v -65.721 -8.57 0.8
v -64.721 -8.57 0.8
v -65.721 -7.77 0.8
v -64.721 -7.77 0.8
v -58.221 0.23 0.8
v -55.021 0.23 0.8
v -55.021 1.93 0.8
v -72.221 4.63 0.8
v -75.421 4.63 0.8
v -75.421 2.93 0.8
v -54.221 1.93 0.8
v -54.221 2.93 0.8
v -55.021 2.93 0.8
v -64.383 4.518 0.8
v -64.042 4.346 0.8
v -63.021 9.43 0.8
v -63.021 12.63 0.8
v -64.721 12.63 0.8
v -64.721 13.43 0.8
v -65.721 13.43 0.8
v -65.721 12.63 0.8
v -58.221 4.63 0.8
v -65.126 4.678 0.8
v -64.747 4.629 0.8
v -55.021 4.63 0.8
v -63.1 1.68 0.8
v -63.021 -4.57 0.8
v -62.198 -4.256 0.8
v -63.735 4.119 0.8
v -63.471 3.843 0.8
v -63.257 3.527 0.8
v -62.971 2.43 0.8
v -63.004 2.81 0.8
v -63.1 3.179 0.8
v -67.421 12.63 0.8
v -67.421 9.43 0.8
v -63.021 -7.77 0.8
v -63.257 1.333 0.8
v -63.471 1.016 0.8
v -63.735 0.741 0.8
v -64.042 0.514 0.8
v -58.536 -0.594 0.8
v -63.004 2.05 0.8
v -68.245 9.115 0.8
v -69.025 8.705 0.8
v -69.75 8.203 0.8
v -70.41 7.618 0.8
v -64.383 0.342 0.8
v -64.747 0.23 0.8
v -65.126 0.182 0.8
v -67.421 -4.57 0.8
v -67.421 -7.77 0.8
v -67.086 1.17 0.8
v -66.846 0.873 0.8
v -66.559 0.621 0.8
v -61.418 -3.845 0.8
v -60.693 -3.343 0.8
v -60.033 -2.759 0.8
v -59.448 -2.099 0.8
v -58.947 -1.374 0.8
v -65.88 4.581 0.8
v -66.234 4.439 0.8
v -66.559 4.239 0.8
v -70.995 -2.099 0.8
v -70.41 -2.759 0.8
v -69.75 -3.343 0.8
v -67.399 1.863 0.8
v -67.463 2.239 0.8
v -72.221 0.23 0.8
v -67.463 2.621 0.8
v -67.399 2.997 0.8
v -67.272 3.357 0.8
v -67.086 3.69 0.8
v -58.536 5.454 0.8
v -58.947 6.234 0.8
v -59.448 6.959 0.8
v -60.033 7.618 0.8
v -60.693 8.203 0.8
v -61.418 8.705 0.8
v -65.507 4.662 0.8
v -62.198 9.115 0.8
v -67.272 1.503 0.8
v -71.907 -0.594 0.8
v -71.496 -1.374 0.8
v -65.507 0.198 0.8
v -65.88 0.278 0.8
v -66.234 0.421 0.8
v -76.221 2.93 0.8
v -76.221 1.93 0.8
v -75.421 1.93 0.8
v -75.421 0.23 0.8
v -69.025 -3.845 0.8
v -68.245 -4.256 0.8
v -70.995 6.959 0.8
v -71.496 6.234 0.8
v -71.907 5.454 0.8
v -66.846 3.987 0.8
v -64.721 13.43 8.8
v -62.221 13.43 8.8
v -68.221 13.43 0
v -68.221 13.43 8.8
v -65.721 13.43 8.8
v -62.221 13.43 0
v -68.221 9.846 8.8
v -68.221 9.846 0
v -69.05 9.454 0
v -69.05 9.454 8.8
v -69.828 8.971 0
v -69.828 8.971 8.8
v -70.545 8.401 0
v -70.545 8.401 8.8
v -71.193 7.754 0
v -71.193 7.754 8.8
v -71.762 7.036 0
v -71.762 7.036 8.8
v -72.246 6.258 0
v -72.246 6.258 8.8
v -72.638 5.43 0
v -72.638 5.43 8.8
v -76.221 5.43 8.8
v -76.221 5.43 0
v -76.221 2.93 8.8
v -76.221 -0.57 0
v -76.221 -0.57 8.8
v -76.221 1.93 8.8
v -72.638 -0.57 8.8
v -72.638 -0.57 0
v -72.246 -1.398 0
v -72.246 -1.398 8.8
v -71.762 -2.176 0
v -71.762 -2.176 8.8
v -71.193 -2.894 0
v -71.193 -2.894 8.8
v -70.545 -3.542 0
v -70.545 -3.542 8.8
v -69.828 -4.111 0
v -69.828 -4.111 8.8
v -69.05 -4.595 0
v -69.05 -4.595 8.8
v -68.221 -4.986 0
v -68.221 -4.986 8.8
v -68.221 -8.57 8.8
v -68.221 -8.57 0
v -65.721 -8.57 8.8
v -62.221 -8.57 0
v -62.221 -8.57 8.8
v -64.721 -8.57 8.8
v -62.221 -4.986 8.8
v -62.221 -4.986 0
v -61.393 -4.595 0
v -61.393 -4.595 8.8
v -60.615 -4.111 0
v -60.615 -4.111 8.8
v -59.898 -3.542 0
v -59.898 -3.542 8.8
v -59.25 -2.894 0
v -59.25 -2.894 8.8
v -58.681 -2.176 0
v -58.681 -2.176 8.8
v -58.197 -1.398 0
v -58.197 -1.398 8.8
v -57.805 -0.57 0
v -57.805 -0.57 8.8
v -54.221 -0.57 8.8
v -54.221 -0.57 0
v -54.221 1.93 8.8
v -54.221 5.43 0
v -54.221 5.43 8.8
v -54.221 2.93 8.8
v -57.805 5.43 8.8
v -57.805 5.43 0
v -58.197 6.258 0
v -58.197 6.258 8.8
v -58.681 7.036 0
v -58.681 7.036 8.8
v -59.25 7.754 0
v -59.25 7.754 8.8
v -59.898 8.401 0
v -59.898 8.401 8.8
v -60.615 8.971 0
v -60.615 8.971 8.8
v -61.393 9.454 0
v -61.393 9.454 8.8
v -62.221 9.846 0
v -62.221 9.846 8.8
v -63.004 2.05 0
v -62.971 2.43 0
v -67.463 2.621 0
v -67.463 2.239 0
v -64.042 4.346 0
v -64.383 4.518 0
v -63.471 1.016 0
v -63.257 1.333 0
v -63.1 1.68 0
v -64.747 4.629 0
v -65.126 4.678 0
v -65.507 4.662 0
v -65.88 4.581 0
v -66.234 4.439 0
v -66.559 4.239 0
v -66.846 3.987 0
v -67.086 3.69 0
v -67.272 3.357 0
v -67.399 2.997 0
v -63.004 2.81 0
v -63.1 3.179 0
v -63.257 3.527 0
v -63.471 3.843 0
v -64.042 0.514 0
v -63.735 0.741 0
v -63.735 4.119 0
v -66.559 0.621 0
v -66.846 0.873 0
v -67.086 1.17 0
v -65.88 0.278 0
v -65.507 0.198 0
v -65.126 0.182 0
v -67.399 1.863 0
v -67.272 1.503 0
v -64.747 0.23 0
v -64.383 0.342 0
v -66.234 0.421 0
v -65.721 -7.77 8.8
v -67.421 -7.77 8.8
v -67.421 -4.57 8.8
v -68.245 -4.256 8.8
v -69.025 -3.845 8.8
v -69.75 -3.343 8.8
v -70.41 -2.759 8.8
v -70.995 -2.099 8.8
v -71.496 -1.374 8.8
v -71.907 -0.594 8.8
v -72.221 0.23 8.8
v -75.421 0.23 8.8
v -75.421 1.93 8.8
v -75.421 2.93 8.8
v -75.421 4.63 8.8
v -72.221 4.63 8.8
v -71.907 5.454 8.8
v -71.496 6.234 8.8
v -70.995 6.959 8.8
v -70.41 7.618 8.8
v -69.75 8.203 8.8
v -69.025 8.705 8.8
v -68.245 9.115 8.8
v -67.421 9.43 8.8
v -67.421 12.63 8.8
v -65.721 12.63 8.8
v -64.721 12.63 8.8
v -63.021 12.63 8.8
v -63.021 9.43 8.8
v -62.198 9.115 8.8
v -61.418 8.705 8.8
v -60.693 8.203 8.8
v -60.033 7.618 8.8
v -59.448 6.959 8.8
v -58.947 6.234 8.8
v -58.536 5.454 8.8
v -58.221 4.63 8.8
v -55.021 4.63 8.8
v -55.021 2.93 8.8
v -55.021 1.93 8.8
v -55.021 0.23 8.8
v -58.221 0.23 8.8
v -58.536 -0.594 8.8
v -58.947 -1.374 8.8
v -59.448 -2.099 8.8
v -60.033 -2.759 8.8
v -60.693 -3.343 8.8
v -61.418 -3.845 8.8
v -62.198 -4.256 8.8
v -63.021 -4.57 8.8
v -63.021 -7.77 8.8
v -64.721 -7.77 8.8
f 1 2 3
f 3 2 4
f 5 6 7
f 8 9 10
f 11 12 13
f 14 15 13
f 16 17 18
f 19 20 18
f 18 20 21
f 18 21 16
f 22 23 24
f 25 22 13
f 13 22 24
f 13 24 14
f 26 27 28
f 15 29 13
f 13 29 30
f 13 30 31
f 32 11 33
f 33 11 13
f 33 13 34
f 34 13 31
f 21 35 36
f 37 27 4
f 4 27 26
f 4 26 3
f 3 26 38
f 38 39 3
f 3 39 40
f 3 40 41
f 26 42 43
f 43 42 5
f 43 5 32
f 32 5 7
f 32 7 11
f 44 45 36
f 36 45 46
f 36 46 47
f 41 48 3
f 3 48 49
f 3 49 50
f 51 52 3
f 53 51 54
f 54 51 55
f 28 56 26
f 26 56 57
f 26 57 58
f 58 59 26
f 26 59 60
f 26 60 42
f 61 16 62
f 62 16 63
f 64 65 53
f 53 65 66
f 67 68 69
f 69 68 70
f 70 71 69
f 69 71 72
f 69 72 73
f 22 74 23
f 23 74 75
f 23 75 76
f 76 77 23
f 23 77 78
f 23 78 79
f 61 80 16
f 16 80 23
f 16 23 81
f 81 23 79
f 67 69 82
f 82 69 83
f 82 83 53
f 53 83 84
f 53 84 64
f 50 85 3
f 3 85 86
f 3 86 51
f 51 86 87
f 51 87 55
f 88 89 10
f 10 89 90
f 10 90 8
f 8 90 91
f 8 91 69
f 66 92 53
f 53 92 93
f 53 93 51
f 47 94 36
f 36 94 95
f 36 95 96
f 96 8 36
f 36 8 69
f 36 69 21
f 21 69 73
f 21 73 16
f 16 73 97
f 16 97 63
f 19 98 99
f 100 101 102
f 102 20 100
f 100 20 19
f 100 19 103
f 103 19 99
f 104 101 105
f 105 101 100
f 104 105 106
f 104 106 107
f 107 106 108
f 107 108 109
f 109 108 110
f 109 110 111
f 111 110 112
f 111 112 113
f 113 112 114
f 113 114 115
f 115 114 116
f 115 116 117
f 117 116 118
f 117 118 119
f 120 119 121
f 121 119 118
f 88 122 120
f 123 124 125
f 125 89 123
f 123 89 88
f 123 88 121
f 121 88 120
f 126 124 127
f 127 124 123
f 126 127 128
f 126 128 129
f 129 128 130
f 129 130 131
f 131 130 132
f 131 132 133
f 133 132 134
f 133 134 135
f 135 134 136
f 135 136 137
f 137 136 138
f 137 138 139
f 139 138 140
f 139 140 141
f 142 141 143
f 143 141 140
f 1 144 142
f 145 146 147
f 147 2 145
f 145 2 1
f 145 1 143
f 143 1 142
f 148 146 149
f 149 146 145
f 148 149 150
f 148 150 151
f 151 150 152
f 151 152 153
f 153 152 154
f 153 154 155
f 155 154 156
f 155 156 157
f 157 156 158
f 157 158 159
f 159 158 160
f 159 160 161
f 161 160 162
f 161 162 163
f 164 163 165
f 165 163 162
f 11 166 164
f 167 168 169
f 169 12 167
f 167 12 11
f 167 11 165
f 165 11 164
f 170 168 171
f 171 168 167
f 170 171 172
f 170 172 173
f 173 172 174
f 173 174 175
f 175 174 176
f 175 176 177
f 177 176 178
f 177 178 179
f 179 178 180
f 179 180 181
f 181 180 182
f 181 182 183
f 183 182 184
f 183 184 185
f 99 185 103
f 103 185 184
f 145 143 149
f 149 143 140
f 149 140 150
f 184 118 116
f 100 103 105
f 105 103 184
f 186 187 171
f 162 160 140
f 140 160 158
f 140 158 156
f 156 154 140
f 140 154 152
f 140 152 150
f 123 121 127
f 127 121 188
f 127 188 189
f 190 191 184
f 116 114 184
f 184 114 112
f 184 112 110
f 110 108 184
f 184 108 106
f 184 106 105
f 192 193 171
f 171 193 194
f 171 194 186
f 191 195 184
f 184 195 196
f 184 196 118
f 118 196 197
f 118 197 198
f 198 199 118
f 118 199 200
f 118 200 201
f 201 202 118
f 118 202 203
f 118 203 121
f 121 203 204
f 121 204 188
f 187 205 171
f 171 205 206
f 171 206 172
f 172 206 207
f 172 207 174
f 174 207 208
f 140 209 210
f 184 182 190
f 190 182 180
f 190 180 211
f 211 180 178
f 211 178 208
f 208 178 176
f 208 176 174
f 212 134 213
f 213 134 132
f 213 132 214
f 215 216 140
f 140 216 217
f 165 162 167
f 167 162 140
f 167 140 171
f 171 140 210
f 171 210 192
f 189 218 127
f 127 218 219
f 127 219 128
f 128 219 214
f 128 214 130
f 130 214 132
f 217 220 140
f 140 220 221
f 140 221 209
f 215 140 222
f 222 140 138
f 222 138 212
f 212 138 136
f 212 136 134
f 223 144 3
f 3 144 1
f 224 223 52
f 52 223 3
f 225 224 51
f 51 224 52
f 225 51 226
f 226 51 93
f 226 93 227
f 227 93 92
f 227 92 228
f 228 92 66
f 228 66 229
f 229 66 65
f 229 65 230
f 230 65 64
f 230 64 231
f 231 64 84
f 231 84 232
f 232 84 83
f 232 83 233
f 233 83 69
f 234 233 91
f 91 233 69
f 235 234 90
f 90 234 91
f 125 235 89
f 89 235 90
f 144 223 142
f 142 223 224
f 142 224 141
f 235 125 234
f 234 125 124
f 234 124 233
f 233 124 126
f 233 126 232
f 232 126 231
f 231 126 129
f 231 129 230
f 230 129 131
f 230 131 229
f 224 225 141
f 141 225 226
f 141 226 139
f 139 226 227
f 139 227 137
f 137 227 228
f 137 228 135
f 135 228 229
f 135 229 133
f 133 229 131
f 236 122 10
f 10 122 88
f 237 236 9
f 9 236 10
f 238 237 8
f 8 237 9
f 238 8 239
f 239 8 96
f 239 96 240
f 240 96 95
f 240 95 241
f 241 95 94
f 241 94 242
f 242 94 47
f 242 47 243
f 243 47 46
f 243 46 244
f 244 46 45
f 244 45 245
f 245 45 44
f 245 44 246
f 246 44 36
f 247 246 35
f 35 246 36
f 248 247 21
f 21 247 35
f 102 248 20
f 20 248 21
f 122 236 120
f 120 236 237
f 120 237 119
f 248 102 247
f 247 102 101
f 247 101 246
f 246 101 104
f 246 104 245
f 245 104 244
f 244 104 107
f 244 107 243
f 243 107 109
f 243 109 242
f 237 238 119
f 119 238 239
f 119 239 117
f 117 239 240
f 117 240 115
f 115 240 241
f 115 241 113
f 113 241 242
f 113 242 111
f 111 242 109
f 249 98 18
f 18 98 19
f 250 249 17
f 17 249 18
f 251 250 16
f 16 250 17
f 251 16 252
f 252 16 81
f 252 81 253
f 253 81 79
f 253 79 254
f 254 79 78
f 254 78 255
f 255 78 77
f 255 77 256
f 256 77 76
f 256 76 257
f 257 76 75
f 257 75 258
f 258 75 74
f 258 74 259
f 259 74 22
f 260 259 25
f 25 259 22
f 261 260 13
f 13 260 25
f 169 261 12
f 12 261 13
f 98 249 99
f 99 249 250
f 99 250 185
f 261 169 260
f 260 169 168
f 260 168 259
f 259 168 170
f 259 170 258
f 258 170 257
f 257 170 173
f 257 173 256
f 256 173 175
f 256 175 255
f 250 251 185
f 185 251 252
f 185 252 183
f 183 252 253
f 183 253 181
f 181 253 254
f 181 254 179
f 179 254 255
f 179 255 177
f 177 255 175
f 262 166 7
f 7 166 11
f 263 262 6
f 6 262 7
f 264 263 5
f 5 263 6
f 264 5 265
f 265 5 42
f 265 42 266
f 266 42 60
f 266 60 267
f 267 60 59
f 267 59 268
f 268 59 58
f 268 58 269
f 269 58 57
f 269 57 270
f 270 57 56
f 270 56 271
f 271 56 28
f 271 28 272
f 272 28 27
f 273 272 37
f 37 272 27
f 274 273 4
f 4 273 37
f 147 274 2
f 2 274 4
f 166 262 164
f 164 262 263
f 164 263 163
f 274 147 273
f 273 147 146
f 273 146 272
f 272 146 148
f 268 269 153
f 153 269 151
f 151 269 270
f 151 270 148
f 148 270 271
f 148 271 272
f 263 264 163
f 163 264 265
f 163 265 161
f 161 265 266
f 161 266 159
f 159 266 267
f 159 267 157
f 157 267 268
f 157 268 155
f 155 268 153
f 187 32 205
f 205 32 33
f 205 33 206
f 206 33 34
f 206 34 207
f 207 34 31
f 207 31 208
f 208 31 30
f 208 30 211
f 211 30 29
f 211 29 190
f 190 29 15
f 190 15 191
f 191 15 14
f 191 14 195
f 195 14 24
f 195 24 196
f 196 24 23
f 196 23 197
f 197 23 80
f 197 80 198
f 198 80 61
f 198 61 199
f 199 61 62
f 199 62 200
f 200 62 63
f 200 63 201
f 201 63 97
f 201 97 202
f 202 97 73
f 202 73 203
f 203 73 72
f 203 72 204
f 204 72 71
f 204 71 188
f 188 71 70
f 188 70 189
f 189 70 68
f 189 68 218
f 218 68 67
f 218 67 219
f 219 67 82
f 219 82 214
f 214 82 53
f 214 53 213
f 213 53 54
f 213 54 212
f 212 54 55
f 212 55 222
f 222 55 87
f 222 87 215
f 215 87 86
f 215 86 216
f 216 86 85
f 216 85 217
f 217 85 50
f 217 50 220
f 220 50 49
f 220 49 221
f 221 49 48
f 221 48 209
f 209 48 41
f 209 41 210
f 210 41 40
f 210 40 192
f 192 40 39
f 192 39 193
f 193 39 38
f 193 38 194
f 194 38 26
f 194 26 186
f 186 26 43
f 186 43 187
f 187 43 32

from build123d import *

# Parameters (mm, degrees)
SALIENTE_EXTRUIR1_DEPTH = 0.8
SALIENTE_EXTRUIR2_DEPTH = 8
CROQUIS3_R              = 2.25
CORTAR_EXTRUIR1_DEPTH   = 0.8


with BuildPart() as part:
    # Croquis1 → Saliente-Extruir1 (new body)
    with BuildSketch(Plane.XY):
        with BuildLine():
            Line((-68.221491284, 9.846072283), (-68.221491284, 13.429873796))
            Line((-68.221491284, 13.429873796), (-62.221491284, 13.429873796))
            Line((-62.221491284, 13.429873796), (-62.221491284, 9.846072283))
            ThreePointArc((-62.221491284, 9.846072283), (-59.564637034, 8.086728046), (-57.805292797, 5.429873796))
            Line((-57.805292797, 5.429873796), (-54.221491284, 5.429873796))
            Line((-54.221491284, 5.429873796), (-54.221491284, -0.570126204))
            Line((-54.221491284, -0.570126204), (-57.805292797, -0.570126204))
            ThreePointArc((-57.805292797, -0.570126204), (-59.564637034, -3.226980453), (-62.221491284, -4.986324691))
            Line((-62.221491284, -4.986324691), (-62.221491284, -8.570126204))
            Line((-62.221491284, -8.570126204), (-68.221491284, -8.570126204))
            Line((-68.221491284, -8.570126204), (-68.221491284, -4.986324691))
            ThreePointArc((-68.221491284, -4.986324691), (-70.878345533, -3.226980453), (-72.637689771, -0.570126204))
            Line((-72.637689771, -0.570126204), (-76.221491284, -0.570126204))
            Line((-76.221491284, -0.570126204), (-76.221491284, 5.429873796))
            Line((-76.221491284, 5.429873796), (-72.637689771, 5.429873796))
            ThreePointArc((-72.637689771, 5.429873796), (-70.878345533, 8.086728046), (-68.221491284, 9.846072283))
        make_face()
    extrude(amount=SALIENTE_EXTRUIR1_DEPTH)

    # Croquis2 → Saliente-Extruir2 (add)
    with BuildSketch(Plane.XY.offset(0.8)):
        with BuildLine():
            Line((-72.637689771, -0.570126204), (-76.221491284, -0.570126204))
            Line((-76.221491284, -0.570126204), (-76.221491284, 1.929873796))
            Line((-76.221491284, 1.929873796), (-75.421491284, 1.929873796))
            Line((-75.421491284, 1.929873796), (-75.421491284, 0.229873796))
            Line((-75.421491284, 0.229873796), (-72.221491284, 0.229873796))
            ThreePointArc((-72.221491284, 0.229873796), (-70.409939992, -2.758574912), (-67.421491284, -4.570126204))
            Line((-67.421491284, -4.570126204), (-67.421491284, -7.770126204))
            Line((-67.421491284, -7.770126204), (-65.721491284, -7.770126204))
            Line((-65.721491284, -7.770126204), (-65.721491284, -8.570126204))
            Line((-65.721491284, -8.570126204), (-68.221491284, -8.570126204))
            Line((-68.221491284, -8.570126204), (-68.221491284, -4.986324691))
            ThreePointArc((-68.221491284, -4.986324691), (-70.878345533, -3.226980453), (-72.637689771, -0.570126204))
        make_face()
        with BuildLine():
            Line((-76.221491284, 5.429873796), (-72.637689771, 5.429873796))
            ThreePointArc((-72.637689771, 5.429873796), (-70.878345533, 8.086728046), (-68.221491284, 9.846072283))
            Line((-68.221491284, 9.846072283), (-68.221491284, 13.429873796))
            Line((-68.221491284, 13.429873796), (-65.721491284, 13.429873796))
            Line((-65.721491284, 13.429873796), (-65.721491284, 12.629873796))
            Line((-65.721491284, 12.629873796), (-67.421491284, 12.629873796))
            Line((-67.421491284, 12.629873796), (-67.421491284, 9.429873796))
            ThreePointArc((-67.421491284, 9.429873796), (-70.409939992, 7.618322504), (-72.221491284, 4.629873796))
            Line((-72.221491284, 4.629873796), (-75.421491284, 4.629873796))
            Line((-75.421491284, 4.629873796), (-75.421491284, 2.929873796))
            Line((-75.421491284, 2.929873796), (-76.221491284, 2.929873796))
            Line((-76.221491284, 2.929873796), (-76.221491284, 5.429873796))
        make_face()
        with BuildLine():
            Line((-62.221491284, 13.429873796), (-62.221491284, 9.846072283))
            ThreePointArc((-62.221491284, 9.846072283), (-59.564637034, 8.086728046), (-57.805292797, 5.429873796))
            Line((-57.805292797, 5.429873796), (-54.221491284, 5.429873796))
            Line((-54.221491284, 5.429873796), (-54.221491284, 2.929873796))
            Line((-54.221491284, 2.929873796), (-55.021491284, 2.929873796))
            Line((-55.021491284, 2.929873796), (-55.021491284, 4.629873796))
            Line((-55.021491284, 4.629873796), (-58.221491284, 4.629873796))
            ThreePointArc((-58.221491284, 4.629873796), (-60.033042575, 7.618322504), (-63.021491284, 9.429873796))
            Line((-63.021491284, 9.429873796), (-63.021491284, 12.629873796))
            Line((-63.021491284, 12.629873796), (-64.721491284, 12.629873796))
            Line((-64.721491284, 12.629873796), (-64.721491284, 13.429873796))
            Line((-64.721491284, 13.429873796), (-62.221491284, 13.429873796))
        make_face()
        with BuildLine():
            Line((-54.221491284, -0.570126204), (-57.805292797, -0.570126204))
            ThreePointArc((-57.805292797, -0.570126204), (-59.564637034, -3.226980453), (-62.221491284, -4.986324691))
            Line((-62.221491284, -4.986324691), (-62.221491284, -8.570126204))
            Line((-62.221491284, -8.570126204), (-64.721491284, -8.570126204))
            Line((-64.721491284, -8.570126204), (-64.721491284, -7.770126204))
            Line((-64.721491284, -7.770126204), (-63.021491284, -7.770126204))
            Line((-63.021491284, -7.770126204), (-63.021491284, -4.570126204))
            ThreePointArc((-63.021491284, -4.570126204), (-60.033042575, -2.758574912), (-58.221491284, 0.229873796))
            Line((-58.221491284, 0.229873796), (-55.021491284, 0.229873796))
            Line((-55.021491284, 0.229873796), (-55.021491284, 1.929873796))
            Line((-55.021491284, 1.929873796), (-54.221491284, 1.929873796))
            Line((-54.221491284, 1.929873796), (-54.221491284, -0.570126204))
        make_face()
    extrude(amount=SALIENTE_EXTRUIR2_DEPTH)

    # Croquis3 → Cortar-Extruir1 (cut)
    with BuildSketch(Plane.XY.offset(0.8)):
        with Locations((-65.221491284, 2.429873796)):
            Circle(CROQUIS3_R)
    extrude(amount=-CORTAR_EXTRUIR1_DEPTH, mode=Mode.SUBTRACT)


solid = part.part
